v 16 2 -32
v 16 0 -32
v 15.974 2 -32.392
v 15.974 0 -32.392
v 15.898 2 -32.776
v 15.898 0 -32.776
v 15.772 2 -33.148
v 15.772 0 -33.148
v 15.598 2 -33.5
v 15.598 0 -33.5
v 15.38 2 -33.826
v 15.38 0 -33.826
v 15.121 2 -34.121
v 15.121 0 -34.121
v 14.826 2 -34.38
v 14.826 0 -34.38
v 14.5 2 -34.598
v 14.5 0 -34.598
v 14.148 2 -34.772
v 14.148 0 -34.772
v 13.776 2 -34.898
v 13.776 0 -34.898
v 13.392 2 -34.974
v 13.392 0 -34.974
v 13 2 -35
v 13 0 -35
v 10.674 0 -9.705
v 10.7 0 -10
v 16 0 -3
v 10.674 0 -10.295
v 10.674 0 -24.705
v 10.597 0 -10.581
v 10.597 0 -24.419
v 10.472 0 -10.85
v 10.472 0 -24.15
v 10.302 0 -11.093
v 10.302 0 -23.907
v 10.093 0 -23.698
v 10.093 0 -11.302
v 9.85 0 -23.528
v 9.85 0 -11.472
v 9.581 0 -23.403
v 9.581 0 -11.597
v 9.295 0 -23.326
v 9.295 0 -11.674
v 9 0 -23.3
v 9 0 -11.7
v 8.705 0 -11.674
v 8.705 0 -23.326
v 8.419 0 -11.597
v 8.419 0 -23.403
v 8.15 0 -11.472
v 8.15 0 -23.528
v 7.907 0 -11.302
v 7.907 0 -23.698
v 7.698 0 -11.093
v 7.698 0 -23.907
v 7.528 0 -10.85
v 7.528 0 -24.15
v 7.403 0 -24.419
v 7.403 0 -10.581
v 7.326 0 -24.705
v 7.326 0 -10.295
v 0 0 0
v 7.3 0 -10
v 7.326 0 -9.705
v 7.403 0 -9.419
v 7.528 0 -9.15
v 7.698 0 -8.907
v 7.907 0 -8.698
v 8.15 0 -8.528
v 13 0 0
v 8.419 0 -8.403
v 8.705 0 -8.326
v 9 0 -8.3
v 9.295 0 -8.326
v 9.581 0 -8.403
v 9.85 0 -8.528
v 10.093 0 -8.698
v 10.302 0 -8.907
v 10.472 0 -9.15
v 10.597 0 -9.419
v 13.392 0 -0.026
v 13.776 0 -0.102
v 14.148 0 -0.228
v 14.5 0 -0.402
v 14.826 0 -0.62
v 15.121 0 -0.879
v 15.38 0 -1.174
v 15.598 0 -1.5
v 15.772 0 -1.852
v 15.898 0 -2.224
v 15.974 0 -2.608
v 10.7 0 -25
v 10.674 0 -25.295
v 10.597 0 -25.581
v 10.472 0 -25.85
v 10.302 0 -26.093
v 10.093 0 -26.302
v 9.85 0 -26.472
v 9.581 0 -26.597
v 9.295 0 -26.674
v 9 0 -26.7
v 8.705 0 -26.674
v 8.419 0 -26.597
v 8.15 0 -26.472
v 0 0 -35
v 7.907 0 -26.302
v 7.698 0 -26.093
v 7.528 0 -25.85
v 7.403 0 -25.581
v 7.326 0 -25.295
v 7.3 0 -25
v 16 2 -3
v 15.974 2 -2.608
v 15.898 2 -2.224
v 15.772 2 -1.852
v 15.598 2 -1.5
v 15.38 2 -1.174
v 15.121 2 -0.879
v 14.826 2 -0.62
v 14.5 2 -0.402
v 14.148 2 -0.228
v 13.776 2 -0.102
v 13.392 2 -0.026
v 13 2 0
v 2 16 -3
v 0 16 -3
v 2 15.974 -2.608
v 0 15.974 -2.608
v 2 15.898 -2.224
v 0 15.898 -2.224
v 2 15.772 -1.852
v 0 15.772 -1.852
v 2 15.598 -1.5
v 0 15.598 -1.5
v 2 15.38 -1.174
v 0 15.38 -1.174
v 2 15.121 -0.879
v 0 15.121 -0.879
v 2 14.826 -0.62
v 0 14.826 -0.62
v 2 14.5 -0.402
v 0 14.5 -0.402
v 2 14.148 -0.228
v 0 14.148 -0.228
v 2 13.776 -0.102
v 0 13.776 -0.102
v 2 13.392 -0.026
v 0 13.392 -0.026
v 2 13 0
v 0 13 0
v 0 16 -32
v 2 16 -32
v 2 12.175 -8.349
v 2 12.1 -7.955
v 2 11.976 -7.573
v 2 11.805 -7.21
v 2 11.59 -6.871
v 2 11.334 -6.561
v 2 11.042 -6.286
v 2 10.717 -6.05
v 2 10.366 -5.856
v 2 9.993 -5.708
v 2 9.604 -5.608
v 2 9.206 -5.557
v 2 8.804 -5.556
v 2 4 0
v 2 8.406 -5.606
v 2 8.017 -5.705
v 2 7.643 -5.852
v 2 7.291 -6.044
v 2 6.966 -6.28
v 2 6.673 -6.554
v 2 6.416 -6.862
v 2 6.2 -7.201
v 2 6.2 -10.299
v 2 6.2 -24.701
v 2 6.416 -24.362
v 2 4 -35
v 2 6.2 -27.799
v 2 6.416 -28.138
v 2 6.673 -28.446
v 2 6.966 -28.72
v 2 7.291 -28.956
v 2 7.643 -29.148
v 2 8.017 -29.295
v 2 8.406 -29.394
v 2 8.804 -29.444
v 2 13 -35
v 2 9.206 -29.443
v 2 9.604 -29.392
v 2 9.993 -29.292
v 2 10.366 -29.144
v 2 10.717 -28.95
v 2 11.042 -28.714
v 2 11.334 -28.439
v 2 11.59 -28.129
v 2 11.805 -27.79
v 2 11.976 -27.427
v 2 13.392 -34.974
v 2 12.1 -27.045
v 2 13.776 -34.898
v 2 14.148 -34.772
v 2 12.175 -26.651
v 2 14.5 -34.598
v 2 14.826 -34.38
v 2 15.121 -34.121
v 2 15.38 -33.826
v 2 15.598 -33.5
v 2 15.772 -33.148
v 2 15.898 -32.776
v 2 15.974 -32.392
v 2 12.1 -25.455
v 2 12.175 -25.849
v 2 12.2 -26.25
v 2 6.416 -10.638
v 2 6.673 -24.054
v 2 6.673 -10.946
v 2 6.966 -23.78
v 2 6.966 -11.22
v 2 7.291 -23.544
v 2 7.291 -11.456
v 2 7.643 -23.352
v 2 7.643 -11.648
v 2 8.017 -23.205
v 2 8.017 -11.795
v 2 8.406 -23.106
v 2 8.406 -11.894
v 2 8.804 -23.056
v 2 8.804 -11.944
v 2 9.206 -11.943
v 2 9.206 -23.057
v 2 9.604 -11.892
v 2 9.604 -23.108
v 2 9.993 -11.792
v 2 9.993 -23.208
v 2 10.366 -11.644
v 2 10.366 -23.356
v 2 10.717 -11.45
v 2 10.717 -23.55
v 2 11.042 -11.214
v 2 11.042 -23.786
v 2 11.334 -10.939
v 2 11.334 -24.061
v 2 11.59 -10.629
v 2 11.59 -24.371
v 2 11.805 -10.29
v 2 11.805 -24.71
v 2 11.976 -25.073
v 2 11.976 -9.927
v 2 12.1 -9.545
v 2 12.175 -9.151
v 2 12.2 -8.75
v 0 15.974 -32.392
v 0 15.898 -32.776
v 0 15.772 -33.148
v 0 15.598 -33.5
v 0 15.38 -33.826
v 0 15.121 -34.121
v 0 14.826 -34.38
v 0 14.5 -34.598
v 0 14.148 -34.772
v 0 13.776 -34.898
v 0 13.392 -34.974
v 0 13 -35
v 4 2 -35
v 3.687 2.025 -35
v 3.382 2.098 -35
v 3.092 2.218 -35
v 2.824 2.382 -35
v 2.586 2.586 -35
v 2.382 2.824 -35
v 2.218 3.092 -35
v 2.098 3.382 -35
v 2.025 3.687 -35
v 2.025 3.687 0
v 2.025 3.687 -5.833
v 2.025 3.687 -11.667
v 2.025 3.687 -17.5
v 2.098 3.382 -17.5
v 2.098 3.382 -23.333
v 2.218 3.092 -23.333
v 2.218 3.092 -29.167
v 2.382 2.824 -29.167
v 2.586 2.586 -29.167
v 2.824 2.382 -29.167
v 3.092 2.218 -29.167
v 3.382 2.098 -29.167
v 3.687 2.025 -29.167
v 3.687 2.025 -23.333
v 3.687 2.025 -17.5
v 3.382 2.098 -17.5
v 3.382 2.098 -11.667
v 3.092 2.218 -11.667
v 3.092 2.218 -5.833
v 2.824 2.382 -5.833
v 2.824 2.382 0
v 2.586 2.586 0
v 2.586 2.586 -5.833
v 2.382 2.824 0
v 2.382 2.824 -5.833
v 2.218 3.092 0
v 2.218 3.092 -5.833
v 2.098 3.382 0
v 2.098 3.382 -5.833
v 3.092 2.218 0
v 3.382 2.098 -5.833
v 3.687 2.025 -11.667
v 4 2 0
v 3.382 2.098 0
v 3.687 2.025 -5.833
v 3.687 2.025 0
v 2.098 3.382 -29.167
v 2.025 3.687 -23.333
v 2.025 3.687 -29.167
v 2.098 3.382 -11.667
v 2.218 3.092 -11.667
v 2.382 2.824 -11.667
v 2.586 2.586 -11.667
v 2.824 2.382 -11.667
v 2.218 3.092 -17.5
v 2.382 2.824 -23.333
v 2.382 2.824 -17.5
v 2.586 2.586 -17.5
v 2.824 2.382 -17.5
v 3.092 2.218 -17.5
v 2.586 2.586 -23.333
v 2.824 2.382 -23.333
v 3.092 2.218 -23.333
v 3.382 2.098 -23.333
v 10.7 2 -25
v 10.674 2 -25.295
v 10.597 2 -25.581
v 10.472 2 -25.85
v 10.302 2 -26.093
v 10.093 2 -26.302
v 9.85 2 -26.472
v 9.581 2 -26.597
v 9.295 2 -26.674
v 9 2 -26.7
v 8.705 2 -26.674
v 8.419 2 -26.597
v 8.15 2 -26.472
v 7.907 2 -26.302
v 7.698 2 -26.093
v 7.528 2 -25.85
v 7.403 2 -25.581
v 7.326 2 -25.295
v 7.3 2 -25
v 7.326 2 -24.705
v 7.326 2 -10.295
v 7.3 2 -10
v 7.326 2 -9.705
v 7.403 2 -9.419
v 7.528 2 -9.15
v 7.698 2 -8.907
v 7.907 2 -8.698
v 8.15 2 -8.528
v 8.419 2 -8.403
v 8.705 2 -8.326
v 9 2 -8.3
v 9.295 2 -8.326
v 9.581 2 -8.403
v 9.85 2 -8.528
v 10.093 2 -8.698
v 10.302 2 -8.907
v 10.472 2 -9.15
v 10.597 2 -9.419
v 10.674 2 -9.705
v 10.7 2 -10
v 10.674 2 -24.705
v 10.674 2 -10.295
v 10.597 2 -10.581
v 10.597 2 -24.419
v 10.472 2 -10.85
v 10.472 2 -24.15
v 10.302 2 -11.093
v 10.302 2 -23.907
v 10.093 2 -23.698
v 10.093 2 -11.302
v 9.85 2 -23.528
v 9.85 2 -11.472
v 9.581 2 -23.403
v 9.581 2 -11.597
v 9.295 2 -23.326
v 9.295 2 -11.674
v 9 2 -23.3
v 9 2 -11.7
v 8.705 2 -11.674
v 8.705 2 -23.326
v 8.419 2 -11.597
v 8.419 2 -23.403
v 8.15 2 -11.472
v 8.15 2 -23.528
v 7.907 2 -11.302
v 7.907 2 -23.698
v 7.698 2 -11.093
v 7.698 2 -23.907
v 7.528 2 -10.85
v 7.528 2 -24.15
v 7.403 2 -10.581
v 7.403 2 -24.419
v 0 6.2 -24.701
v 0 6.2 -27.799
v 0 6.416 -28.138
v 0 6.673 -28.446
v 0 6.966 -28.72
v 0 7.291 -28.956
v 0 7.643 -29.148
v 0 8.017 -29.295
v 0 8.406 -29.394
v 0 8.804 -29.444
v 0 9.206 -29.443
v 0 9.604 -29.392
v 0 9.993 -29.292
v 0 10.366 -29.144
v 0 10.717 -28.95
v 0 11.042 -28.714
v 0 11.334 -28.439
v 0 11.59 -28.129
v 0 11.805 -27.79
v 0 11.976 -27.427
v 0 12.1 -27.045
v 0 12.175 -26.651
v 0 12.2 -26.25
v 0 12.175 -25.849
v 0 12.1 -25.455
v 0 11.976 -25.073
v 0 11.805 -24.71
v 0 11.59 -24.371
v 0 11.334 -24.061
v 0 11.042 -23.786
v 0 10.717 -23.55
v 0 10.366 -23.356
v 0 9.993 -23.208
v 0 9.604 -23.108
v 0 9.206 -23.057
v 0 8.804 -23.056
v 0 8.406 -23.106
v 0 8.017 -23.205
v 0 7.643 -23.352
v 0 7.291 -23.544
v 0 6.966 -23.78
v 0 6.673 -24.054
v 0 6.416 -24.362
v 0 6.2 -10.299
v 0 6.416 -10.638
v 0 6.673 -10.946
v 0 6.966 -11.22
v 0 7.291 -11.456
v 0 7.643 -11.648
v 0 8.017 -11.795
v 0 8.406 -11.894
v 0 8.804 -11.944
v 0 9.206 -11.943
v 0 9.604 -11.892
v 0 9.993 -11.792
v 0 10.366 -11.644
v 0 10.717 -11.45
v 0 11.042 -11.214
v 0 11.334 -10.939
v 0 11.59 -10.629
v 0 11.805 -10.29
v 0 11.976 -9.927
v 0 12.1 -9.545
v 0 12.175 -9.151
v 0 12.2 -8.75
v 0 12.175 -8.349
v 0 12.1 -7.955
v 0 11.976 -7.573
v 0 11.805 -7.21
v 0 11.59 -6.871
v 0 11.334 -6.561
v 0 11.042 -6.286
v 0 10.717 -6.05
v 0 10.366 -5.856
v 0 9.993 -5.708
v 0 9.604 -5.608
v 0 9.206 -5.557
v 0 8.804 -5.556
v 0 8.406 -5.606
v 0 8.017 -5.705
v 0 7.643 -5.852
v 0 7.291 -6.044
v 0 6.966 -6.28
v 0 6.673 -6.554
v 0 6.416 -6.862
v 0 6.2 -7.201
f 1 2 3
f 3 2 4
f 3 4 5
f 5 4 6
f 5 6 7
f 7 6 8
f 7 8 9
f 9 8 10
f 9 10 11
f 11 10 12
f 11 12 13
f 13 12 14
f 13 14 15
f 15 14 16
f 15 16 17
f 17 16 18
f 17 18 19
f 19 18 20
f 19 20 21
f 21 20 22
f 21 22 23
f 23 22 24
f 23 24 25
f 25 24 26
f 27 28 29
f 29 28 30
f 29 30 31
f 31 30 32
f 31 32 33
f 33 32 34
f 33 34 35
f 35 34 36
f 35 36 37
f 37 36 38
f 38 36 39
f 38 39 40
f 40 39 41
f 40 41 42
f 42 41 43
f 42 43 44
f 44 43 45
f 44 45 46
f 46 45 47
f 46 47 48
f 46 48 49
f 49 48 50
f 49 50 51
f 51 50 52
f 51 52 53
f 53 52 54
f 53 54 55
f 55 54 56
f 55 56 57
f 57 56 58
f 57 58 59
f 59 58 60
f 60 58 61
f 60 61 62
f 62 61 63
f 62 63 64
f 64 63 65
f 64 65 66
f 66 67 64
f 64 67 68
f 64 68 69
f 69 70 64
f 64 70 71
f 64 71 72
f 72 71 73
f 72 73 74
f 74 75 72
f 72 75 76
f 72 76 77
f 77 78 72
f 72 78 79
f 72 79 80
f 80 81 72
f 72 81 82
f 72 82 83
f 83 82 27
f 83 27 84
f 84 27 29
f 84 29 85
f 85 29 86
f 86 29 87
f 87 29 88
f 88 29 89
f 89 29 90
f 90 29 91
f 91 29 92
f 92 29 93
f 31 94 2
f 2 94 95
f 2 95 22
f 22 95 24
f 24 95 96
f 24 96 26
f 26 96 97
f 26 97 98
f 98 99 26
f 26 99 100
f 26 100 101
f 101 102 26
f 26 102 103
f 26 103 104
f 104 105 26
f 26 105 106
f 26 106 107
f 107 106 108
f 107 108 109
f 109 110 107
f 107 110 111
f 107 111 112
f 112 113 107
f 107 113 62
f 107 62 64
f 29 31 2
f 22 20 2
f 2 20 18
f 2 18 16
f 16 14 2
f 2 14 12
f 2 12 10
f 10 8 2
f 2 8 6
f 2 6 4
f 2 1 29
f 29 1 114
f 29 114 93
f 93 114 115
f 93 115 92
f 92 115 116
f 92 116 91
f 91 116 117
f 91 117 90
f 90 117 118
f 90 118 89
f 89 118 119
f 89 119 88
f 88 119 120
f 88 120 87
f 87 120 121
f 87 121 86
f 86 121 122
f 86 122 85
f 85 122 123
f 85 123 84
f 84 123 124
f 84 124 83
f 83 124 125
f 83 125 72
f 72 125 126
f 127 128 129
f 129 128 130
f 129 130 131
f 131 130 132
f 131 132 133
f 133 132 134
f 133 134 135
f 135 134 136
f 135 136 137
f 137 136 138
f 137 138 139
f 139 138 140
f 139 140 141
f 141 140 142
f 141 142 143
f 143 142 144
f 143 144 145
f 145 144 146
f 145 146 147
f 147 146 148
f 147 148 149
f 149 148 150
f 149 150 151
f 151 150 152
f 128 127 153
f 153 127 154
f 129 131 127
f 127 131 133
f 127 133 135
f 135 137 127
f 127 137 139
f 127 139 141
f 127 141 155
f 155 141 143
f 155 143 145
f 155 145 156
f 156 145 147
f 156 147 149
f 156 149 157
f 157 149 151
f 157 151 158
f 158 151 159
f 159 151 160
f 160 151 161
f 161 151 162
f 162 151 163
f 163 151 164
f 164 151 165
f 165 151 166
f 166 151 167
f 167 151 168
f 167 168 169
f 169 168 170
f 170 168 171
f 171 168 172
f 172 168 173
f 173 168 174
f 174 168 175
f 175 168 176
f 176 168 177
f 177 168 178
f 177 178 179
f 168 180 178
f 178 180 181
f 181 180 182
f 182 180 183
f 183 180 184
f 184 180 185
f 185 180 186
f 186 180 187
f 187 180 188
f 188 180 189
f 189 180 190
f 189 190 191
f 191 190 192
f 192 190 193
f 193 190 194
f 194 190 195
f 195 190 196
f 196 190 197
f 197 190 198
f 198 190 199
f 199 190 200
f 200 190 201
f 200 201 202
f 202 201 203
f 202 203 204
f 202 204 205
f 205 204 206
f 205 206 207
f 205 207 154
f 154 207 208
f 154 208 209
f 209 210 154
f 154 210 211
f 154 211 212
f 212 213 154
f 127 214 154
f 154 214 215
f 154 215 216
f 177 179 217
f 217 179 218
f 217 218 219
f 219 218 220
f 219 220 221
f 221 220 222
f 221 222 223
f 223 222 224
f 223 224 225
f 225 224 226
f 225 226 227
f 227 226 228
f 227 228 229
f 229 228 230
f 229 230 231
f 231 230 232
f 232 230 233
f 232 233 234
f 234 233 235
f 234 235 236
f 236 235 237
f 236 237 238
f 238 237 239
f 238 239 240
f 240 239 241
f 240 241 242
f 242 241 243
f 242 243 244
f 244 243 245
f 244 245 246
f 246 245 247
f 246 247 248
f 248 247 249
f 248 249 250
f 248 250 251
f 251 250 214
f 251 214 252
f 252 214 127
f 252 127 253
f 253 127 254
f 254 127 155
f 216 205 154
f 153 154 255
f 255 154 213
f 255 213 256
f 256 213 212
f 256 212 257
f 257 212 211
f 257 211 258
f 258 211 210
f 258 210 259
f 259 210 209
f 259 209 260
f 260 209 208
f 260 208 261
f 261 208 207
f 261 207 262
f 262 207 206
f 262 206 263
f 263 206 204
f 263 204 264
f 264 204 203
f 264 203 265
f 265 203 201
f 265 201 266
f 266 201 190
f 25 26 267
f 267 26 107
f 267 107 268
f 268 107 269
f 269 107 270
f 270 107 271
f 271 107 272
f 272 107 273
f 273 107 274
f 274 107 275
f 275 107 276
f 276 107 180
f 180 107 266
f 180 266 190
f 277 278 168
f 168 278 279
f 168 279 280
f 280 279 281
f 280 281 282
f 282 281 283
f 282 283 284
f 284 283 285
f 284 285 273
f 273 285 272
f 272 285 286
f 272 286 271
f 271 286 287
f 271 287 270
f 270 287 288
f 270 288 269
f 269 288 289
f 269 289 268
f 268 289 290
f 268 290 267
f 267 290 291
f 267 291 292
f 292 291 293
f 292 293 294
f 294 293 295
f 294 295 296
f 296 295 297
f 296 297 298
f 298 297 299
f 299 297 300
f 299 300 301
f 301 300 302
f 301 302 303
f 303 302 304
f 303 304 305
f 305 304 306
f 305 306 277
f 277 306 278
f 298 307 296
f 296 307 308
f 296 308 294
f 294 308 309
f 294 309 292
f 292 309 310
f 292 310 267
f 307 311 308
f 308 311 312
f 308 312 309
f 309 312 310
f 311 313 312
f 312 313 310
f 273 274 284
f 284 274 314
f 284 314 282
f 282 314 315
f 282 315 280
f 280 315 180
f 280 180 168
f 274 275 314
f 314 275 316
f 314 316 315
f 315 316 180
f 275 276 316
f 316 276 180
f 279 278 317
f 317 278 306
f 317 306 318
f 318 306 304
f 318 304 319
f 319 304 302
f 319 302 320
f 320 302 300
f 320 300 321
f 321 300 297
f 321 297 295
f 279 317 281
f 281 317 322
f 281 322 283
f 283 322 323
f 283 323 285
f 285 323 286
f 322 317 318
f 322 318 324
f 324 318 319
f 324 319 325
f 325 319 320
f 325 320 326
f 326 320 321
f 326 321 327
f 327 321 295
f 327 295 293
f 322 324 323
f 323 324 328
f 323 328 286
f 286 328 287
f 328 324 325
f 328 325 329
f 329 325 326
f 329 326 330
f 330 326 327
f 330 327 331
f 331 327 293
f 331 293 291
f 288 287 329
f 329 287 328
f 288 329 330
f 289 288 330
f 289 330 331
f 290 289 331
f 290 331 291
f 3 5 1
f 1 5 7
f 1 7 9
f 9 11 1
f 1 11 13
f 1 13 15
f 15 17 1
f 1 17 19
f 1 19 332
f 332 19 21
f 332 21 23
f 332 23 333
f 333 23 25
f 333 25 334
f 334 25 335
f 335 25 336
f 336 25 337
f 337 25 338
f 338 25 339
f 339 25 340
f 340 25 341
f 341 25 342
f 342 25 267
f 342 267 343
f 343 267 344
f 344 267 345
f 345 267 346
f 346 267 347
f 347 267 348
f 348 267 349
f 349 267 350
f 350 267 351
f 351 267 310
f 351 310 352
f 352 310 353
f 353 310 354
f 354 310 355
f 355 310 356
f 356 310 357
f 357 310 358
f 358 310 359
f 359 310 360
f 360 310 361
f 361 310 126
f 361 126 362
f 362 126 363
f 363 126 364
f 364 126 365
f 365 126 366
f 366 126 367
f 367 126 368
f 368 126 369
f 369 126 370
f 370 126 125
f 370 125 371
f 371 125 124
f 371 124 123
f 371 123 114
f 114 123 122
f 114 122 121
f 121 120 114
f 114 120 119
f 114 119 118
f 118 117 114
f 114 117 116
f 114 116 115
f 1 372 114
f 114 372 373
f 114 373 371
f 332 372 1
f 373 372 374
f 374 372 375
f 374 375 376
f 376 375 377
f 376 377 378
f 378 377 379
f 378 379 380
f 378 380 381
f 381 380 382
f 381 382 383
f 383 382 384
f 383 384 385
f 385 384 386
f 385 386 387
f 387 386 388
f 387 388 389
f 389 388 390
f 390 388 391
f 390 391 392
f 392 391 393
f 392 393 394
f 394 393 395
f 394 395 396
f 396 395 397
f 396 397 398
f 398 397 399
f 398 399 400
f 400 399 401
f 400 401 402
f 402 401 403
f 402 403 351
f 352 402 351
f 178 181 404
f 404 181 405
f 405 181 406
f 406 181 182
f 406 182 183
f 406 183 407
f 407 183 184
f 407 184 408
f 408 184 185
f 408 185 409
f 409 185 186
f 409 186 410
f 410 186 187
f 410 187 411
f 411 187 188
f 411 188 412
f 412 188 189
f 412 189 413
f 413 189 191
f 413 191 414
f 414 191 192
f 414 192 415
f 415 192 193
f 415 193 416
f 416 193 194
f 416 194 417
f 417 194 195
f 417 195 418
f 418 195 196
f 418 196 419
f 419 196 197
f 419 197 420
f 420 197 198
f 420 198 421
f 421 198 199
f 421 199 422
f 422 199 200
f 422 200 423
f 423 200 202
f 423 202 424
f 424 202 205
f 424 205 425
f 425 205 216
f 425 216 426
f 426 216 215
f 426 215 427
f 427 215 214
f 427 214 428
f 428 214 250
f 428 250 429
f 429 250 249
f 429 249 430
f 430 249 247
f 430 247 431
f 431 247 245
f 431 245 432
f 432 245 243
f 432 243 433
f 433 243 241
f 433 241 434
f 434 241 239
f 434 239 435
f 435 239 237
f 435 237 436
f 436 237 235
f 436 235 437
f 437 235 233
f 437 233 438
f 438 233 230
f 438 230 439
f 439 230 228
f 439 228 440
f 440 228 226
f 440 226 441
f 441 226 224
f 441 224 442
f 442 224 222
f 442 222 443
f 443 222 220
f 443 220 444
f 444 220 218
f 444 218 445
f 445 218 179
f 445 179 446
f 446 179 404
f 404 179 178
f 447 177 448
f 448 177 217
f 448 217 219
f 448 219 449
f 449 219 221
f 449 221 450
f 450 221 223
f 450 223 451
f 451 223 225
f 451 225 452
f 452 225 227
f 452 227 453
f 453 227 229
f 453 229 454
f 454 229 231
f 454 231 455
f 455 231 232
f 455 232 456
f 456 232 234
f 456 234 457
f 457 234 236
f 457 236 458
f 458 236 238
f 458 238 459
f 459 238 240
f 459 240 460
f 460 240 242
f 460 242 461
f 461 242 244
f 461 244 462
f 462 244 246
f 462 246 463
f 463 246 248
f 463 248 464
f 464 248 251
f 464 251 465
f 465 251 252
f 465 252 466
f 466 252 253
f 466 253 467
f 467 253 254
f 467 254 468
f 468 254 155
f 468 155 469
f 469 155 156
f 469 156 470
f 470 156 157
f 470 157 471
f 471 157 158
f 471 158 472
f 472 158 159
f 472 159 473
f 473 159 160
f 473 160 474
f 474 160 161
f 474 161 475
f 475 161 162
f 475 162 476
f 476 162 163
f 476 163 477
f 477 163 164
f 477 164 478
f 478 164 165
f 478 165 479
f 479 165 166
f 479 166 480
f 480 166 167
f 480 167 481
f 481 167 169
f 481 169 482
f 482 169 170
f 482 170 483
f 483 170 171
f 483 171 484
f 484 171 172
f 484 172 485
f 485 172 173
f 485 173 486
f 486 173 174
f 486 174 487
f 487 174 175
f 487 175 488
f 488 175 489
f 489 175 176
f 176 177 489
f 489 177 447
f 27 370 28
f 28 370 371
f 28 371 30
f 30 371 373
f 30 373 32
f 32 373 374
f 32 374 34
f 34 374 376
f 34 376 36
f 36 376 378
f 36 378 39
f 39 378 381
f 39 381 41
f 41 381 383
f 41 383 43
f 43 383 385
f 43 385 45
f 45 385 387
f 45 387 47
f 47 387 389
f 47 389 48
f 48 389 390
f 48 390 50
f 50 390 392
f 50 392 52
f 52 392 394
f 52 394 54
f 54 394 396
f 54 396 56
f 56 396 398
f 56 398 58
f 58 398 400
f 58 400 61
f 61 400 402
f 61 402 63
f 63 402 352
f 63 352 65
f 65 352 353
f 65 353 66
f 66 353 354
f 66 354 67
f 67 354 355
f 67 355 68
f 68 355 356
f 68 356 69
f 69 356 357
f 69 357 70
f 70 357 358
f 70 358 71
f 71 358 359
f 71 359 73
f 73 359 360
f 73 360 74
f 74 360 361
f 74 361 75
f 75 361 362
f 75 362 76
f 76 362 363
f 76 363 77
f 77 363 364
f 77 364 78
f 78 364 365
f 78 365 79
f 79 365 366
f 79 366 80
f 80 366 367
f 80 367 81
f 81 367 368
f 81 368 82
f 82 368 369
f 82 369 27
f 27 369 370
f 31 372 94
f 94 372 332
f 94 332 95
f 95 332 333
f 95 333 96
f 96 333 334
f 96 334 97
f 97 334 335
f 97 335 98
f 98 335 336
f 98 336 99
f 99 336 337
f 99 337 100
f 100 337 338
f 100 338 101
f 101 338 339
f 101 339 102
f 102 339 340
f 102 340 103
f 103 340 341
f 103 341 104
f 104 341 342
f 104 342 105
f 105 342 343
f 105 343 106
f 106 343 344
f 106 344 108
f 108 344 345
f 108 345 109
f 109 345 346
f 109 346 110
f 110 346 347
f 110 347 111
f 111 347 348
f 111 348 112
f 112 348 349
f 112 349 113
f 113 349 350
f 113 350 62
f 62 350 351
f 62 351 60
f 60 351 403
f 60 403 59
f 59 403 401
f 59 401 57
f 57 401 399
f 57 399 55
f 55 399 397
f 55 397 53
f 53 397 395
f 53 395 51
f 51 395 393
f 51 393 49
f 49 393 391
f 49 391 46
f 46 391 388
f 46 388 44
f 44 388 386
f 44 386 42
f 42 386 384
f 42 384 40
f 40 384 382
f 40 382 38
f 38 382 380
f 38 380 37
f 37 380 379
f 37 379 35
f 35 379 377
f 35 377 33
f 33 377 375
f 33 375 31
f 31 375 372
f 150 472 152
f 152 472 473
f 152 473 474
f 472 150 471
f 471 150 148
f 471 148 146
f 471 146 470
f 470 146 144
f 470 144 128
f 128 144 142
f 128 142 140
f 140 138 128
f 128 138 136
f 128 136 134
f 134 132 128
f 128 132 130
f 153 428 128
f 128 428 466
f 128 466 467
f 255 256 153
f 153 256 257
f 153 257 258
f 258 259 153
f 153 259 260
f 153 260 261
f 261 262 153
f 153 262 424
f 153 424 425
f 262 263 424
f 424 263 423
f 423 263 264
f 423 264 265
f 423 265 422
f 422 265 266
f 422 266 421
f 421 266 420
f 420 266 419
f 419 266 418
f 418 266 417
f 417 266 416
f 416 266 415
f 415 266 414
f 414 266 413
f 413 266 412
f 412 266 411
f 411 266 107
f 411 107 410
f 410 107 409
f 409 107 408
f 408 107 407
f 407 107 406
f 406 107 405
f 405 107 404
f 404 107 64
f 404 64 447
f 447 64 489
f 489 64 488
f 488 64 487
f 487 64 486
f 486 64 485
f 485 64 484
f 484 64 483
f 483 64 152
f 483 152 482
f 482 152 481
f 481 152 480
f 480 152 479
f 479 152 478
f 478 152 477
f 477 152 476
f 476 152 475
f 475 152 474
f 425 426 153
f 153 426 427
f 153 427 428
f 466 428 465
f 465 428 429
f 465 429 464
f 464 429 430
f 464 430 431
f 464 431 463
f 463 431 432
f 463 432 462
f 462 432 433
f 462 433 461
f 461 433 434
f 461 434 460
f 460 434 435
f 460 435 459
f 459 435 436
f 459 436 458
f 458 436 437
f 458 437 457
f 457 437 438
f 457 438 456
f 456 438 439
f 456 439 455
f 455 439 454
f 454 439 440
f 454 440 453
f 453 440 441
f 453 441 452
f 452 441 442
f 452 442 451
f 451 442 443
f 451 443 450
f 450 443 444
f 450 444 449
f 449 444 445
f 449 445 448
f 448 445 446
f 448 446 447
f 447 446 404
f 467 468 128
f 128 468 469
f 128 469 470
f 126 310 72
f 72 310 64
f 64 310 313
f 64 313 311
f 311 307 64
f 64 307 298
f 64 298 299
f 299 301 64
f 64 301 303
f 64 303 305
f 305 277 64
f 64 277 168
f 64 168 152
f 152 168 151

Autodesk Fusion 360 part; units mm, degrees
sketch "Sketch1" plane through (0, 0, 0) normal (0, 0, 1) x (1, 0, 0)
  line L0 (0, 0) -> (16, 0)
  line L1 (16, 0) -> (16, 2)
  line L2 (16, 2) -> (2, 2)
  line L3 (2, 2) -> (2, 16)
  line L4 (2, 16) -> (0, 16)
  line L5 (0, 16) -> (0, 0)
  dimension "d1" = 16
  dimension "d2" = 16
  dimension "d3" = 2
  dimension "d4" = 2
extrude "Extrude1" add sketch "Sketch1" against normal blind 35
sketch "Sketch2" plane through (0, 2, 0) normal (0, 1, 0) x (-1, 0, 0)
  line L0 (-2, 0) -> (-16, 0)
  line L1 (-16, 0) -> (-16, -35)
  line L2 (-16, -35) -> (-2, -35)
  line L3 (-2, -35) -> (-2, 0)
  line L4 (-9, -35) -> (-9, 0) construction
  line L5 (-16, -17.5) -> (-2, -17.5) construction
  circle A0 centre (-9, -10) radius 1.7
  circle A1 centre (-9, -25) radius 1.7
  dimension "d7" = 3.4
  dimension "d19" = 7.5
extrude "Extrude2" cut sketch "Sketch2" against normal blind 2 contours A0 | A1
sketch "Sketch3" plane through (2, 0, 0) normal (1, 0, 0) x (0, 0, -1)
  line L0 (0, 16) -> (0, 2)
  line L1 (0, 2) -> (35, 2)
  line L2 (35, 2) -> (35, 16)
  line L3 (35, 16) -> (0, 16)
  line L4 (17.5, 16) -> (17.5, 2) construction
  line L5 (0, 9) -> (35, 9) construction
  circle A0 centre (8.75, 9) radius 3.2
  line L6 (0, 12.2) -> (35, 12.2) construction
  line L7 (0, 6.2) -> (35, 6.2) construction
  line L8 (7.2008, 6.2) -> (10.2992, 6.2)
  circle A1 centre (26.25, 9) radius 3.2
  line L9 (27.7992, 6.2) -> (24.7008, 6.2)
  dimension "d10" = 6.4
  dimension "d11" = 6
  dimension "d12" = 8.75
extrude "Extrude3" cut sketch "Sketch3" against normal blind 2 contours A0 L8 | A1 L9 picked at (8.5695, 8.1846) picked at (27.2186, 9.3965)
fillet "Fillet1" radius 2 1 edges at (2, 2, -17.5)
fillet "Fillet2" radius 3 4 edges at (1, 16, -35) (1, 16, 0) (16, 1, 0) (16, 1, -35)
equation "d12 = ( 17.5 / 2 ) * 1 mm"
equation "d19 = ( 15 / 2 ) * 1 mm"
